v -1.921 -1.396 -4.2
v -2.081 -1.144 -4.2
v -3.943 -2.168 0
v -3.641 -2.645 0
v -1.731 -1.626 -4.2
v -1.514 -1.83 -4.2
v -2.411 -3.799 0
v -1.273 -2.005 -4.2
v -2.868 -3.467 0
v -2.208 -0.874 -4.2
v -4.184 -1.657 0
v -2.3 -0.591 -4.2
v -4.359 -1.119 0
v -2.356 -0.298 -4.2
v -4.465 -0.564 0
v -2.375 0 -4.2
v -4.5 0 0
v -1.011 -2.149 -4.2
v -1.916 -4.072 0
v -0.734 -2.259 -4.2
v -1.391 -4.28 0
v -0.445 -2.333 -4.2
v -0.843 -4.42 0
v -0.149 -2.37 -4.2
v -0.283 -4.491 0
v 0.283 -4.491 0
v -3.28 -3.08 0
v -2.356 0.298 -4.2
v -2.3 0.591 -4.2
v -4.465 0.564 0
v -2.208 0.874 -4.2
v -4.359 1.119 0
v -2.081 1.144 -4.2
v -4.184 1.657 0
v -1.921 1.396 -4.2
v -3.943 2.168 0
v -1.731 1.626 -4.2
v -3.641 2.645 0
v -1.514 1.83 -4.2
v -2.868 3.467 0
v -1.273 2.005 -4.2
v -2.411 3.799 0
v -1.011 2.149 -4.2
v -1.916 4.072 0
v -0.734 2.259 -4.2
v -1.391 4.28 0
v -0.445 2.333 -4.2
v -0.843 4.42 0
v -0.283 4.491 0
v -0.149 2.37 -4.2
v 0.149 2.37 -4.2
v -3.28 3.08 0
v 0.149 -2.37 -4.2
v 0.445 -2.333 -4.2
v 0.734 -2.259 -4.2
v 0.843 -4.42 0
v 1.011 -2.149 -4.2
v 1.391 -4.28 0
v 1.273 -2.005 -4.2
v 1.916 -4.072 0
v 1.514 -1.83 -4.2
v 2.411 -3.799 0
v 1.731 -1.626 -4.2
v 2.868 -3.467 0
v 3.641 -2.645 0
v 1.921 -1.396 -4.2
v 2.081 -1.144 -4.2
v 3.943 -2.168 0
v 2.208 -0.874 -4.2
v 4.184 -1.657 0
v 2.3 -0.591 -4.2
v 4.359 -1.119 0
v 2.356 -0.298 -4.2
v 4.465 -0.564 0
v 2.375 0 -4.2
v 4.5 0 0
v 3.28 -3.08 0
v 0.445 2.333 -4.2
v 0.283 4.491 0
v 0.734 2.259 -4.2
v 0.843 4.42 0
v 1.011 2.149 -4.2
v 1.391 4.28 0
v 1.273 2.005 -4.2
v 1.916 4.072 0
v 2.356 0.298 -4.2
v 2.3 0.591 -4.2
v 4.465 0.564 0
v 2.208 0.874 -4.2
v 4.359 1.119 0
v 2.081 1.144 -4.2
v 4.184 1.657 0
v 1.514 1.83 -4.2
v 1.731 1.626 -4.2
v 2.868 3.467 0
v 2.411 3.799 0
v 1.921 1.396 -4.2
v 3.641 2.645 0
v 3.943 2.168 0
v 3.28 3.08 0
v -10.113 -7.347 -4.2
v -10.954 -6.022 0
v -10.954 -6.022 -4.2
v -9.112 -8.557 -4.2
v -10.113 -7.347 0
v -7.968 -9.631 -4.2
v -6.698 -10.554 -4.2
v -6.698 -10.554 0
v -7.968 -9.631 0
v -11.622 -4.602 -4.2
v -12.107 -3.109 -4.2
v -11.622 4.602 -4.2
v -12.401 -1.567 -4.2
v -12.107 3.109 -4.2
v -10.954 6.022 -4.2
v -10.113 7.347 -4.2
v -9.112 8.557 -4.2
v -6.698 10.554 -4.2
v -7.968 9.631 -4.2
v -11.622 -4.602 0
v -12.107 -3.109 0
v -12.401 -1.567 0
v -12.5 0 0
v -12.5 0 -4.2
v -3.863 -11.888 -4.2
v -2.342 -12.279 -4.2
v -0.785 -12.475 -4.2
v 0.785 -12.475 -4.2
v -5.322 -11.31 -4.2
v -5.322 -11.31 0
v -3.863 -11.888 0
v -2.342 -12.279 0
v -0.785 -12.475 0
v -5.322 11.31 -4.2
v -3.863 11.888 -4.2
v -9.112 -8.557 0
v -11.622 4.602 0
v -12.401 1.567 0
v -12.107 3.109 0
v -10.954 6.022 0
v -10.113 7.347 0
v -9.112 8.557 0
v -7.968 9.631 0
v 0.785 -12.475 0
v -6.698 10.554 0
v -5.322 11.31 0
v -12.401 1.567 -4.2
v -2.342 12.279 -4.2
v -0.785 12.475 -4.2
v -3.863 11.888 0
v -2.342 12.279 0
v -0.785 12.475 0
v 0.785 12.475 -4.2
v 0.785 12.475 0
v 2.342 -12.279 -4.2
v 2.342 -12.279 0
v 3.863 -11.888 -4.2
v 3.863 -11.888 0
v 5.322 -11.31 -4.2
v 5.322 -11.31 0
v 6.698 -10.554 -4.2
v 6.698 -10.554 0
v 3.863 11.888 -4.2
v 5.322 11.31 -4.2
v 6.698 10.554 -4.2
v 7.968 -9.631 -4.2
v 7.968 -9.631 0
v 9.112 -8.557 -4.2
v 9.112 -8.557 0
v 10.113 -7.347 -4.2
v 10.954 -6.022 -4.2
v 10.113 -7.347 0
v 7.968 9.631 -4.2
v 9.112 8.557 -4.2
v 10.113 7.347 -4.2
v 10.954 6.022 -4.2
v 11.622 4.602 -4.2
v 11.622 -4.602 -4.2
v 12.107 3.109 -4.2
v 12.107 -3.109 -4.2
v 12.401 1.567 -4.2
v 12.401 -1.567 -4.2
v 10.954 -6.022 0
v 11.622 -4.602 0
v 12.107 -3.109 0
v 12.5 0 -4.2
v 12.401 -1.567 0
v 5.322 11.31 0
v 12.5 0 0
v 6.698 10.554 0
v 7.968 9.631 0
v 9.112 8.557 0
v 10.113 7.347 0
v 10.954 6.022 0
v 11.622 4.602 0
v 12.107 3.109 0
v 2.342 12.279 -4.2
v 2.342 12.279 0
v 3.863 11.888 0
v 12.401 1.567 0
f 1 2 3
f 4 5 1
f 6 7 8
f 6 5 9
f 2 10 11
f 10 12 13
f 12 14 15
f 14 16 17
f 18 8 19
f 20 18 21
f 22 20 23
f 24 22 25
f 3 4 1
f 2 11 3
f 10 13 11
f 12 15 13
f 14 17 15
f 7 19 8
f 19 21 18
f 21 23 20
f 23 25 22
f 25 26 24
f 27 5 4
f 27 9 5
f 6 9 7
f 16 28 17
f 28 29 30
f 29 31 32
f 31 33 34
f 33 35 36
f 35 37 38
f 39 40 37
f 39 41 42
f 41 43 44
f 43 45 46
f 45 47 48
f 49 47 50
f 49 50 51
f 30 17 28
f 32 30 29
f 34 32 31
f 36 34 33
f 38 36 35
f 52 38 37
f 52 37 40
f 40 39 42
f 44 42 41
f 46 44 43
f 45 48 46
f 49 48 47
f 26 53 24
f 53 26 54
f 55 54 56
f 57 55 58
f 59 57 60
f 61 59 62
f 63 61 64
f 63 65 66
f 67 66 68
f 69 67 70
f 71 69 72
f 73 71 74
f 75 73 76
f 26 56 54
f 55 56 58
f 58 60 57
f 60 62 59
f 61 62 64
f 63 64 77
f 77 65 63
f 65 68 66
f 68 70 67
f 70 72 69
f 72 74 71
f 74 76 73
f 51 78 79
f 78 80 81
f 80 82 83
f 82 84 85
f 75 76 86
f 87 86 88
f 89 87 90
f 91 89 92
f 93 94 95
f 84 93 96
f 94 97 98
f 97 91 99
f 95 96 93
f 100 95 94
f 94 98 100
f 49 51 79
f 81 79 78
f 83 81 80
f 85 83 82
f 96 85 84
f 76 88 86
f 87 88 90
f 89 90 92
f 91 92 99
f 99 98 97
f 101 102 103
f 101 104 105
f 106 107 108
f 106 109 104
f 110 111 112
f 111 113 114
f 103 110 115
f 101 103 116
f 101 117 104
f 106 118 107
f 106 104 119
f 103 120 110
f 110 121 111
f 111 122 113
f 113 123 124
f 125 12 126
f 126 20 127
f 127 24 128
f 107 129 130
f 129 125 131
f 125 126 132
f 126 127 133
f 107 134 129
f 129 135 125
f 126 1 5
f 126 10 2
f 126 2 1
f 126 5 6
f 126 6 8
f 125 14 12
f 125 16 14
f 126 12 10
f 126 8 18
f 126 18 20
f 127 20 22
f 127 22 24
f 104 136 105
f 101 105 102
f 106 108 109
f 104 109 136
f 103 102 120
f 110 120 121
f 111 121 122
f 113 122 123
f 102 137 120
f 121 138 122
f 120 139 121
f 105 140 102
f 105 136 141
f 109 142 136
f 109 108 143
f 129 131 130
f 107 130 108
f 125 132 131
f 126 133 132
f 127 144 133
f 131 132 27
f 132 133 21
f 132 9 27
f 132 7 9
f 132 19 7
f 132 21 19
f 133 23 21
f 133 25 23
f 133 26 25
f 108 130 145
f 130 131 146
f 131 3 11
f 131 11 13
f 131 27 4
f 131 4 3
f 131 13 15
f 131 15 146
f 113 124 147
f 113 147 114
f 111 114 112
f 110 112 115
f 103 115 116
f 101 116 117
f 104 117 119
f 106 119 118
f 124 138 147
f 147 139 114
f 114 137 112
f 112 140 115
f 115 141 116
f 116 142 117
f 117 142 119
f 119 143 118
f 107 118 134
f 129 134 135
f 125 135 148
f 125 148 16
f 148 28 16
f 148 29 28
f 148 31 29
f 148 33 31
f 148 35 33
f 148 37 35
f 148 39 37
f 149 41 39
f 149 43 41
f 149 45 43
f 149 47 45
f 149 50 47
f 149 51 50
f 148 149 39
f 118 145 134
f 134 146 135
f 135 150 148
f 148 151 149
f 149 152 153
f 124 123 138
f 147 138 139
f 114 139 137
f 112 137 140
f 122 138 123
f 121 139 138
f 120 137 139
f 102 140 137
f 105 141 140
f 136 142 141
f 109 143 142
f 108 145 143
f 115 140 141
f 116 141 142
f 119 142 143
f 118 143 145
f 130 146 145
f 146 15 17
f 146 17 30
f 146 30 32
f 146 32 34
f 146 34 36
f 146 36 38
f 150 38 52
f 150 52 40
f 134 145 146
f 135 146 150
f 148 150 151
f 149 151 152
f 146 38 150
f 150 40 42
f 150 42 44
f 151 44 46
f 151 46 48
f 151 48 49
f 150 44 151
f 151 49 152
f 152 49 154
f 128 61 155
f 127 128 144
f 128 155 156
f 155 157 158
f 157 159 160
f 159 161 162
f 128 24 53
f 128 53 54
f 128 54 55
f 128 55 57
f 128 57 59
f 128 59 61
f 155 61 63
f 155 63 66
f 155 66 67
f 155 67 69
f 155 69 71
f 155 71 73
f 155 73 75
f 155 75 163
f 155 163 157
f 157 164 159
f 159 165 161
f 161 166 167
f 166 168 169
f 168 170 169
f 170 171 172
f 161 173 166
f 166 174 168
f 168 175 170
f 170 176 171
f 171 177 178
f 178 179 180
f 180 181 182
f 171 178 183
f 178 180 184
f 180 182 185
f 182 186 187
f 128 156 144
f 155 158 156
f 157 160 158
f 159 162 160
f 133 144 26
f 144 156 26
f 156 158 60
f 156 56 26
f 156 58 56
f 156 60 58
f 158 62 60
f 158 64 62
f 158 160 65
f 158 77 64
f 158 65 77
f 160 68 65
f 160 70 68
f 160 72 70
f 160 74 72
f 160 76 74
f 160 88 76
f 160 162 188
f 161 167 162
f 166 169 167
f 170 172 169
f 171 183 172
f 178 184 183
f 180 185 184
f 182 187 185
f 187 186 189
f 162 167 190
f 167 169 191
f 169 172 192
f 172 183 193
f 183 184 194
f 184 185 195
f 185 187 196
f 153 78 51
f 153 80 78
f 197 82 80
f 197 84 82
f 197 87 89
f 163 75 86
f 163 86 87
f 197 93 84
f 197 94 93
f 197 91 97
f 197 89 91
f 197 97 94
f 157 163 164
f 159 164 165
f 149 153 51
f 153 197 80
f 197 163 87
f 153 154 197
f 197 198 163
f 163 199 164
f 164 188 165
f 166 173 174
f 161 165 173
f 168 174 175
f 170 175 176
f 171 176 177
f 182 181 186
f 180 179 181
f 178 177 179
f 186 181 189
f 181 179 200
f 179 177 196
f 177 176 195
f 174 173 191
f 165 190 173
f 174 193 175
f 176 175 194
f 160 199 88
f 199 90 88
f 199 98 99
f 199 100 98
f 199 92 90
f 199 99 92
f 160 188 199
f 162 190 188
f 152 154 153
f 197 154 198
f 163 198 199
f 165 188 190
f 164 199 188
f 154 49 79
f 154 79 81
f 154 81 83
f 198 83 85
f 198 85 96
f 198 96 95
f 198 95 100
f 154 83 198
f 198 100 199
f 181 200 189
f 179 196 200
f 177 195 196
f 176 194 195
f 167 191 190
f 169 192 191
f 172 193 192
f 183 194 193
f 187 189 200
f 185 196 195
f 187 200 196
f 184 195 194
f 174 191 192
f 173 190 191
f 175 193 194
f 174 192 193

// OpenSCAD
$fn = 50;


difference() {
	union() {
		translate(v = [0, 0, -4.2000000000]) {
			cylinder(h = 4.2000000000, r = 12.5000000000);
		}
	}
	union() {
		translate(v = [0, 0, 0]) {
			rotate(a = [0, 0, 0]) {
				difference() {
					union() {
						translate(v = [0, 0, -7.2000000000]) {
							cylinder(h = 7.2000000000, r = 2.2500000000);
						}
						translate(v = [0, 0, -4.2000000000]) {
							cylinder(h = 4.2000000000, r1 = 2.3750000000, r2 = 4.5000000000);
						}
						translate(v = [0, 0, -7.2000000000]) {
							cylinder(h = 7.2000000000, r = 2.3750000000);
						}
						translate(v = [0, 0, -7.2000000000]) {
							cylinder(h = 7.2000000000, r = 2.2500000000);
						}
					}
					union();
				}
			}
		}
	}
}
